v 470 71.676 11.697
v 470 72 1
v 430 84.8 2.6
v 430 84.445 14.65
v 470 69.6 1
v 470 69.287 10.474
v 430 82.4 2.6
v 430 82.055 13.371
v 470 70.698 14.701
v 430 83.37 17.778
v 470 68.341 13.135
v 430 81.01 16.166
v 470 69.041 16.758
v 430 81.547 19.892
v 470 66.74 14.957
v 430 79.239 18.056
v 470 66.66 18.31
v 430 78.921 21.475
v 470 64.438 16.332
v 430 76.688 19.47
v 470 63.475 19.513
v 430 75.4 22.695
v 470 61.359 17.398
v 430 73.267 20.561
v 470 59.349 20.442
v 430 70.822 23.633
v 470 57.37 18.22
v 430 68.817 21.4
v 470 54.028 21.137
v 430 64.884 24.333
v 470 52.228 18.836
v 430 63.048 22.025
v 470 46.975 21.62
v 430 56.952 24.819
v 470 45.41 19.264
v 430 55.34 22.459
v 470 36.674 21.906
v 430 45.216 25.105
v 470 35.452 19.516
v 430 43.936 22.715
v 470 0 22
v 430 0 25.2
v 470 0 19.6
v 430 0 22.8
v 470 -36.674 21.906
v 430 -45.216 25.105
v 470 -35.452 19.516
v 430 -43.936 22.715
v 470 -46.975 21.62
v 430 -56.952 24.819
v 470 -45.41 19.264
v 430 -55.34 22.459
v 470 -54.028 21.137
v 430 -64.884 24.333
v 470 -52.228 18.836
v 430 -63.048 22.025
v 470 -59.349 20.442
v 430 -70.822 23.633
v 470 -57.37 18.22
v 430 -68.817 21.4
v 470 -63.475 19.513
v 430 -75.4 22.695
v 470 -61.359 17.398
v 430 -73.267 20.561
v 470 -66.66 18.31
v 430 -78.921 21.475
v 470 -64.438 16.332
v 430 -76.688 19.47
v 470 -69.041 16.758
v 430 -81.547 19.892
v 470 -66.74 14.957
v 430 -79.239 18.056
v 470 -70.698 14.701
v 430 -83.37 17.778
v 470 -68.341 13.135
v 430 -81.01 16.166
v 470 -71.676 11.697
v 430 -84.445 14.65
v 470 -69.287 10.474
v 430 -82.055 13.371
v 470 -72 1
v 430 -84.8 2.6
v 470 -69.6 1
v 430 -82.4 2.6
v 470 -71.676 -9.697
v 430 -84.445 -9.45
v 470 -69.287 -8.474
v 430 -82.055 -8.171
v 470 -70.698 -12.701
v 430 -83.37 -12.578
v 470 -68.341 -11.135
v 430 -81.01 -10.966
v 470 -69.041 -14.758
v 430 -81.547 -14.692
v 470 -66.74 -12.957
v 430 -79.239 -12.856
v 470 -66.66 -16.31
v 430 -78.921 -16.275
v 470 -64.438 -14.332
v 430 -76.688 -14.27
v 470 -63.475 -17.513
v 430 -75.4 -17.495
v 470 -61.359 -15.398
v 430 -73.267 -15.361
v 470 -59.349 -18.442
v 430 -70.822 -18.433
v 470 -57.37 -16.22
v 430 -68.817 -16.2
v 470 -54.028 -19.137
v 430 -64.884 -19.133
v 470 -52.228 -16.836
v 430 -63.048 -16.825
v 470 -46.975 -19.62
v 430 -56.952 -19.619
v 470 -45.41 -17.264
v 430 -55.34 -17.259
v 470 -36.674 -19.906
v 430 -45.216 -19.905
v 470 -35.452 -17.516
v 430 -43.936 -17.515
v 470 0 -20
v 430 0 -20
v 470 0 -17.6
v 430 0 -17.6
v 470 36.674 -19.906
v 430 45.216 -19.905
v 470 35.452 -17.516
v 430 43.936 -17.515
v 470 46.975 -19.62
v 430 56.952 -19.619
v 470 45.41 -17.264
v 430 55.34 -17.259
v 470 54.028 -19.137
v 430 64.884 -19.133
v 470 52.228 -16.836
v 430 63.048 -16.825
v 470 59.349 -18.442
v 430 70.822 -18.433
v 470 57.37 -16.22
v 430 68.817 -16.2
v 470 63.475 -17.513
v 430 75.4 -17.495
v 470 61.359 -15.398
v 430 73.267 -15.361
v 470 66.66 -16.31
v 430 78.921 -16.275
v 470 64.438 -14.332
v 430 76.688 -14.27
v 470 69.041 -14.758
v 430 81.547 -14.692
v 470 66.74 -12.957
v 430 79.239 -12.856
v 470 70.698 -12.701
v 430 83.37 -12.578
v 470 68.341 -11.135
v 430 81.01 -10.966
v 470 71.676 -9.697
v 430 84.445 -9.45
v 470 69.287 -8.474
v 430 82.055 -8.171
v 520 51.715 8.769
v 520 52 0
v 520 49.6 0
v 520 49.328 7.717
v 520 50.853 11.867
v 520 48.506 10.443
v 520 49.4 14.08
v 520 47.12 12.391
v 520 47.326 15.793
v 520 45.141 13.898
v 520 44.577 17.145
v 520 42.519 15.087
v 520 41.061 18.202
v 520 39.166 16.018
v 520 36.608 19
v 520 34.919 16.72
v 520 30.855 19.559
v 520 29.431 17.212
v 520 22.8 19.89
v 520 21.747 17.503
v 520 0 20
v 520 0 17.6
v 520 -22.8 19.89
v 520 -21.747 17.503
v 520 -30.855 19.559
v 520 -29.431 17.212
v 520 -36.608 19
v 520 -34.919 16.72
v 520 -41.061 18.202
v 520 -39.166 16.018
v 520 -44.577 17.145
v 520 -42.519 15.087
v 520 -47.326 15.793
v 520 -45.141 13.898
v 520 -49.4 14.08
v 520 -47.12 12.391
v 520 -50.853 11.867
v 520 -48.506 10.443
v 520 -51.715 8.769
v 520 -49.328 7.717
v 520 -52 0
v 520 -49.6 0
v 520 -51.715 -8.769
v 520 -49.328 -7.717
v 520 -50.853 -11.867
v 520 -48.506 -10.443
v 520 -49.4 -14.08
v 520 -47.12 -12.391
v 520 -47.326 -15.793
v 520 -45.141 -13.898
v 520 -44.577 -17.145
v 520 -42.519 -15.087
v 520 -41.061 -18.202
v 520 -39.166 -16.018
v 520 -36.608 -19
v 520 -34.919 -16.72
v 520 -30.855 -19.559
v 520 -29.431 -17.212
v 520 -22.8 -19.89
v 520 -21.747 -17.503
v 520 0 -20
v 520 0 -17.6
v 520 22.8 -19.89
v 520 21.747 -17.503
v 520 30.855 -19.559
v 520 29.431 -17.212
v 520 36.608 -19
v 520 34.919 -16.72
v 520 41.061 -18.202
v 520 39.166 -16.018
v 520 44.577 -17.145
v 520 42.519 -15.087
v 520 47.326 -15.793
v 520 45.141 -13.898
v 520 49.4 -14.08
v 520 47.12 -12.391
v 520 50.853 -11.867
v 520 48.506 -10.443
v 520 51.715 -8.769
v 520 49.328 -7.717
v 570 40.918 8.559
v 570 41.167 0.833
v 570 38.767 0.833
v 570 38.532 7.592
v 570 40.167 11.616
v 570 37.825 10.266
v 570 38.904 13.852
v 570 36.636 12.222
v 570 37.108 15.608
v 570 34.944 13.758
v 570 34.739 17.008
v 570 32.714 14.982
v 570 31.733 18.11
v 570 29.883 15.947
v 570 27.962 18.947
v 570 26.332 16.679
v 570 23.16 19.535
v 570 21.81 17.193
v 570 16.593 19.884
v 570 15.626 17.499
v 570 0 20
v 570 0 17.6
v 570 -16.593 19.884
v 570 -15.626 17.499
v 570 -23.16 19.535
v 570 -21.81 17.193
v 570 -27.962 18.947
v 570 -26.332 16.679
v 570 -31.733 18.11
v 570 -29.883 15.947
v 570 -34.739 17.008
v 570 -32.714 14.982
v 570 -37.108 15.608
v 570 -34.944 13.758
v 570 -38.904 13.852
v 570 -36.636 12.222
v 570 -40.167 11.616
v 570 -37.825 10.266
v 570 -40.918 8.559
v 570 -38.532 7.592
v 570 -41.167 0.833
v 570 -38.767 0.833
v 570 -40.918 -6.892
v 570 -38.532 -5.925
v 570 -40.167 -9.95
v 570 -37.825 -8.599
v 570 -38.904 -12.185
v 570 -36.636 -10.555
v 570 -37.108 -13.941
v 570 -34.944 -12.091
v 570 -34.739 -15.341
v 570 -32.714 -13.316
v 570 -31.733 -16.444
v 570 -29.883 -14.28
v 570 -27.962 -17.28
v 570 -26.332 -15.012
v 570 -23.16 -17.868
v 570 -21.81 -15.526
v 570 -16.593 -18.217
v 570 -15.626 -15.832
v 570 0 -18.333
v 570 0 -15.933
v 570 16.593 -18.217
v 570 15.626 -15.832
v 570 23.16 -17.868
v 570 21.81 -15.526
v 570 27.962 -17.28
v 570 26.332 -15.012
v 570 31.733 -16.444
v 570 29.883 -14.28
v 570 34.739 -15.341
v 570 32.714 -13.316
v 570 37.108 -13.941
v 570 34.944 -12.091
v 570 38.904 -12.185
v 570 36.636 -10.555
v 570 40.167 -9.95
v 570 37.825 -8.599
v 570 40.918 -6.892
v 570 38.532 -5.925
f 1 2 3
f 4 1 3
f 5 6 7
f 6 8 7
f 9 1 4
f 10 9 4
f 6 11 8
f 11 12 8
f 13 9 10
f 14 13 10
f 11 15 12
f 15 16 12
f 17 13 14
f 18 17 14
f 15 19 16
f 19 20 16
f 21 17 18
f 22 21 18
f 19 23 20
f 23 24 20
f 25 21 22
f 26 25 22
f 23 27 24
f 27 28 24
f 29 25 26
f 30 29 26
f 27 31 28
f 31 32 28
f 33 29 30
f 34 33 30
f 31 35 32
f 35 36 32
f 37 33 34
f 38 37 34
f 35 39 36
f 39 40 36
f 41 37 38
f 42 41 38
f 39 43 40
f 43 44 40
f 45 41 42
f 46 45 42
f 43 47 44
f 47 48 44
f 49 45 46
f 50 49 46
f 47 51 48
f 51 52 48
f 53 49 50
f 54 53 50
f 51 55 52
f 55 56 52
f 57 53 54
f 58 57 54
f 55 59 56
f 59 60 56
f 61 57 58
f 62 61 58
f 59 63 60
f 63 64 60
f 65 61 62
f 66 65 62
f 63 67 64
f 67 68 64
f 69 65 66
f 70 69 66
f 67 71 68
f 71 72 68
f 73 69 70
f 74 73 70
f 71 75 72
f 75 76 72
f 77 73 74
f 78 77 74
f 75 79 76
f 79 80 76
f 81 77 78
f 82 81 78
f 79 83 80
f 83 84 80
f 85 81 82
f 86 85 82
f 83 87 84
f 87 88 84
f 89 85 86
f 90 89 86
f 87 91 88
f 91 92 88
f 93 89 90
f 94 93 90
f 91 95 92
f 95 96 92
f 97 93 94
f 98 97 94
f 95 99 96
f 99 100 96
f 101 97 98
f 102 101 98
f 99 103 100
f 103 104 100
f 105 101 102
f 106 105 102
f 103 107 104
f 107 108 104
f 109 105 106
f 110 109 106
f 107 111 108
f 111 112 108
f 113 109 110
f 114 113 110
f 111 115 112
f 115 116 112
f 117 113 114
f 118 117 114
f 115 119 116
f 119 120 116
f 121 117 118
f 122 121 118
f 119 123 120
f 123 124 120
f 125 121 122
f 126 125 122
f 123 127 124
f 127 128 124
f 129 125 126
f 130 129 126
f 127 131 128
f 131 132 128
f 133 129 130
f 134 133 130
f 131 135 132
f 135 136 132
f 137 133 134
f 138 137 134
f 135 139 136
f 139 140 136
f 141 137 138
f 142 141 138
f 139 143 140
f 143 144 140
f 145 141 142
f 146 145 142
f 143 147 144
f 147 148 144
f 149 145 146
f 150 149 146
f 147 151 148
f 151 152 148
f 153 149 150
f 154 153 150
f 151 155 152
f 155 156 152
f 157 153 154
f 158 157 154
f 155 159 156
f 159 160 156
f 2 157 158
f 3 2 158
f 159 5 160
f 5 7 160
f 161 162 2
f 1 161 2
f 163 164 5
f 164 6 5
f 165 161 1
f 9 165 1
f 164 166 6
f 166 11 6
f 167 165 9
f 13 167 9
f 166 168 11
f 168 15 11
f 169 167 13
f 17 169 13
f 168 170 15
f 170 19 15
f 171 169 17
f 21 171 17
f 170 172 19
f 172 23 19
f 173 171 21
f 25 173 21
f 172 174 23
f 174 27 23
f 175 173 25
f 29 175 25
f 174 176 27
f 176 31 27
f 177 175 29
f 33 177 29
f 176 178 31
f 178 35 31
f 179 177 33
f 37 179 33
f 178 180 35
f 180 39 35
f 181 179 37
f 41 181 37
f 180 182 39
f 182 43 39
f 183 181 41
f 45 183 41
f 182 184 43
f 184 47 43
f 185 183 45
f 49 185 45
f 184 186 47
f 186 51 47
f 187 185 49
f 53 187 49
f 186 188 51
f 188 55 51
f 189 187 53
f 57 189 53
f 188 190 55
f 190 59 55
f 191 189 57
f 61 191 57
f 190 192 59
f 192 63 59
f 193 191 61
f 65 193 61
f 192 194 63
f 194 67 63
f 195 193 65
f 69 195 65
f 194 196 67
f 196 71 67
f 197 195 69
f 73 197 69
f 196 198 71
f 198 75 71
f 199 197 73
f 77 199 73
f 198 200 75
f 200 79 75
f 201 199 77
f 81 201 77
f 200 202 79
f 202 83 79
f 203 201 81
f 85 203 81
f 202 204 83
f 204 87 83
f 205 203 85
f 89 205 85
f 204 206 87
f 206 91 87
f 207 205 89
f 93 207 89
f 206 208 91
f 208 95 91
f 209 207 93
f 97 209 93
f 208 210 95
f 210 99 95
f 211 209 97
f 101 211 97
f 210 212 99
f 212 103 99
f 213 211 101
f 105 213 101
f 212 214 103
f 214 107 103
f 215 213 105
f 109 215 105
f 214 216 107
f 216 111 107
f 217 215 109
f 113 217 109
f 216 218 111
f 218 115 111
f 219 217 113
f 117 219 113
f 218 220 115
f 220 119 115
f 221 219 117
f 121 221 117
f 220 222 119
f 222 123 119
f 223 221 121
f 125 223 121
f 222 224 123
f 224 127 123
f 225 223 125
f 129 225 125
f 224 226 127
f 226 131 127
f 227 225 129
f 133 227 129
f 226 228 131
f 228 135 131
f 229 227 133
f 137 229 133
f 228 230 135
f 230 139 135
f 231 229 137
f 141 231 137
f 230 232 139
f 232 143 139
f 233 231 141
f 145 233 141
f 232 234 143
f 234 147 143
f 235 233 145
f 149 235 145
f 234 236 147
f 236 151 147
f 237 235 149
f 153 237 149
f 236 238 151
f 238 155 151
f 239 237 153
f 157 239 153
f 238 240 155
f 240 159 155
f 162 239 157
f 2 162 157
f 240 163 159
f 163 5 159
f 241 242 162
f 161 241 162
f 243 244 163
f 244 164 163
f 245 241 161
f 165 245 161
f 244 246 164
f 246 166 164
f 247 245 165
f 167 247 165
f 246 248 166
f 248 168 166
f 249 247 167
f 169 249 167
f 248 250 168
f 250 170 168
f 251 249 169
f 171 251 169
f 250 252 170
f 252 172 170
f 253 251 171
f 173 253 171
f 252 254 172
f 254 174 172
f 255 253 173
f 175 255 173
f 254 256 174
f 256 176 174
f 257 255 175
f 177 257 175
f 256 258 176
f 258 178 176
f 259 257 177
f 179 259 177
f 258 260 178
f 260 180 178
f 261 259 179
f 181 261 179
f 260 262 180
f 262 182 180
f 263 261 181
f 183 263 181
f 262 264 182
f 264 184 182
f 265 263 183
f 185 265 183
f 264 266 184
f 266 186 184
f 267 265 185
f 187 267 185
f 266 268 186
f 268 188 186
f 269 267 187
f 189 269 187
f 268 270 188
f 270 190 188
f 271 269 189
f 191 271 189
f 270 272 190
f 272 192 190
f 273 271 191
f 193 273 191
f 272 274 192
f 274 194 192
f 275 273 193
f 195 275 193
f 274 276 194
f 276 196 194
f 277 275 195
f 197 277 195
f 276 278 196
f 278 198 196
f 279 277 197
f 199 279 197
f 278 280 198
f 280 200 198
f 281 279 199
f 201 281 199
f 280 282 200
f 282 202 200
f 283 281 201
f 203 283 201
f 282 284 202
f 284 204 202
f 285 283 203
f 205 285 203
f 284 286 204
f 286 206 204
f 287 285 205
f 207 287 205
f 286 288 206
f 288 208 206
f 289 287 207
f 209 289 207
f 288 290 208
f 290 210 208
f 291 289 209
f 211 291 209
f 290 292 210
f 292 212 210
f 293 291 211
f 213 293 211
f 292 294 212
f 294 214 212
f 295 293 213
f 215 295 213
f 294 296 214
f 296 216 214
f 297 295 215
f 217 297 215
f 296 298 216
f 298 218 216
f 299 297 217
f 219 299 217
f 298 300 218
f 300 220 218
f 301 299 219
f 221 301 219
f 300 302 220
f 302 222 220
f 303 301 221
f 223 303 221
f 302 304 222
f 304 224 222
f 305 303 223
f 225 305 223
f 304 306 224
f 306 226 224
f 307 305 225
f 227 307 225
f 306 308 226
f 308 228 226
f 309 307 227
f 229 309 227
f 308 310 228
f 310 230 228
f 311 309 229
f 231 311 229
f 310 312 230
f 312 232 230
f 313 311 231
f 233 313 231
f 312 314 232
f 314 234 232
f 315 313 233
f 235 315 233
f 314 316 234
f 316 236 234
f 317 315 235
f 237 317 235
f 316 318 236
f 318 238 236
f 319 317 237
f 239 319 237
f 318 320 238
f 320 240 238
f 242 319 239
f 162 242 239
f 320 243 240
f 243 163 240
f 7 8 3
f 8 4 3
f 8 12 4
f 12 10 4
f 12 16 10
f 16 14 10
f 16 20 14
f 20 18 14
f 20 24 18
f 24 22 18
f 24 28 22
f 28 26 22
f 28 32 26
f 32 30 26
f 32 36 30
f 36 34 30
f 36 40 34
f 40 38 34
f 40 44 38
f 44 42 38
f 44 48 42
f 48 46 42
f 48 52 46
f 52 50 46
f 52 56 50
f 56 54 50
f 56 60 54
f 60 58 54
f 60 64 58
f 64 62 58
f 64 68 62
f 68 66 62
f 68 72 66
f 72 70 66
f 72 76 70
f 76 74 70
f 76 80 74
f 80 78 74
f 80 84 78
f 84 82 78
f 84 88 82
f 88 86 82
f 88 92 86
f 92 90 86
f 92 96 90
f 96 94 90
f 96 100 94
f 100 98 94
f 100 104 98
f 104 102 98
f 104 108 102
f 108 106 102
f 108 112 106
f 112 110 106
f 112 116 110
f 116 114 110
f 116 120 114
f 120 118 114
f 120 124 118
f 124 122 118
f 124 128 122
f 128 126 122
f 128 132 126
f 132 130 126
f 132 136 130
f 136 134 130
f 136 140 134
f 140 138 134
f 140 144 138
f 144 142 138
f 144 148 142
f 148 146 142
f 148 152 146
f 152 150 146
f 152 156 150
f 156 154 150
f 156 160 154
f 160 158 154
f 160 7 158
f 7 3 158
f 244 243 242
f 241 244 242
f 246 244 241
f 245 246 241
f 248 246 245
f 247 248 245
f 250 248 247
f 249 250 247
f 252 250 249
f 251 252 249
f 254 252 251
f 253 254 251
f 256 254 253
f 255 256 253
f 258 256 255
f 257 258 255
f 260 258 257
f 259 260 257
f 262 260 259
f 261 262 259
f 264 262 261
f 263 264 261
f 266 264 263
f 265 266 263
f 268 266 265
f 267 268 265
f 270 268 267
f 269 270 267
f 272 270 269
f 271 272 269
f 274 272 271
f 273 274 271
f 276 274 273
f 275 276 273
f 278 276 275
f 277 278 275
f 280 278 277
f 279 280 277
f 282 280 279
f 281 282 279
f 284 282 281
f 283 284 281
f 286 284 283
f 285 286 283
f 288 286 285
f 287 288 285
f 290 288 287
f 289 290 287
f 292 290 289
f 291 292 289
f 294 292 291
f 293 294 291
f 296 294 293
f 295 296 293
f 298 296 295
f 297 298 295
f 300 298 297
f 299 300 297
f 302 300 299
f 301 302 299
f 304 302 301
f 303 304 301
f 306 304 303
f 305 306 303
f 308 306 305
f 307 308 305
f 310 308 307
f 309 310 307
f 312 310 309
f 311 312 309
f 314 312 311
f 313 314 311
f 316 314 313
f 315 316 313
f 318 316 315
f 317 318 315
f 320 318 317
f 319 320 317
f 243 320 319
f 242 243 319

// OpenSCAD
polyhedron(points=[[430.0, 84.8, 2.6], [430.0, 84.444642, 14.650381], [430.0, 83.369686, 17.778229], [430.0, 81.546687, 19.892314], [430.0, 78.92145, 21.474588], [430.0, 75.400429, 22.694926], [430.0, 70.821464, 23.633311], [430.0, 64.884434, 24.332961], [430.0, 56.951939, 24.818808], [430.0, 45.21559, 25.105294], [430.0, 0.000271, 25.2], [430.0, -45.21559, 25.105294], [430.0, -56.951939, 24.818808], [430.0, -64.884434, 24.332961], [430.0, -70.821464, 23.633311], [430.0, -75.400429, 22.694926], [430.0, -78.92145, 21.474588], [430.0, -81.546687, 19.892314], [430.0, -83.369686, 17.778229], [430.0, -84.444642, 14.650381], [430.0, -84.8, 2.600091], [430.0, -84.444642, -9.450381], [430.0, -83.369686, -12.578229], [430.0, -81.546687, -14.692314], [430.0, -78.92145, -16.274588], [430.0, -75.400429, -17.494926], [430.0, -70.821464, -18.433311], [430.0, -64.884434, -19.132961], [430.0, -56.951939, -19.618808], [430.0, -45.21559, -19.905294], [430.0, -0.000393, -20.0], [430.0, 45.21559, -19.905294], [430.0, 56.951939, -19.618808], [430.0, 64.884434, -19.132961], [430.0, 70.821464, -18.433311], [430.0, 75.400429, -17.494926], [430.0, 78.92145, -16.274588], [430.0, 81.546687, -14.692314], [430.0, 83.369686, -12.578229], [430.0, 84.444642, -9.450381], [430.0, 82.4, 2.6], [430.0, 82.054699, 13.370695], [430.0, 81.010167, 16.166382], [430.0, 79.238762, 18.055962], [430.0, 76.687824, 19.470207], [430.0, 73.266455, 20.560951], [430.0, 68.817083, 21.399685], [430.0, 63.048082, 22.025036], [430.0, 55.340092, 22.459288], [430.0, 43.935904, 22.715351], [430.0, 0.000263, 22.8], [430.0, -43.935904, 22.715351], [430.0, -55.340092, 22.459288], [430.0, -63.048082, 22.025036], [430.0, -68.817083, 21.399685], [430.0, -73.266455, 20.560951], [430.0, -76.687824, 19.470207], [430.0, -79.238762, 18.055962], [430.0, -81.010167, 16.166382], [430.0, -82.054699, 13.370695], [430.0, -82.4, 2.600082], [430.0, -82.054699, -8.170695], [430.0, -81.010167, -10.966382], [430.0, -79.238762, -12.855962], [430.0, -76.687824, -14.270207], [430.0, -73.266455, -15.360951], [430.0, -68.817083, -16.199685], [430.0, -63.048082, -16.825036], [430.0, -55.340092, -17.259288], [430.0, -43.935904, -17.515351], [430.0, -0.000382, -17.6], [430.0, 43.935904, -17.515351], [430.0, 55.340092, -17.259288], [430.0, 63.048082, -16.825036], [430.0, 68.817083, -16.199685], [430.0, 73.266455, -15.360951], [430.0, 76.687824, -14.270207], [430.0, 79.238762, -12.855962], [430.0, 81.010167, -10.966382], [430.0, 82.054699, -8.170695], [470.0, 72.0, 1.0], [470.0, 71.676387, 11.696687], [470.0, 70.698064, 14.701191], [470.0, 69.041046, 16.758288], [470.0, 66.659576, 18.31007], [470.0, 63.47457, 19.513416], [470.0, 59.34881, 20.442376], [470.0, 54.028415, 21.136972], [470.0, 46.975514, 21.620269], [470.0, 36.674354, 21.905613], [470.0, 9.2e-05, 22.0], [470.0, -36.674354, 21.905613], [470.0, -46.975514, 21.620269], [470.0, -54.028415, 21.136972], [470.0, -59.34881, 20.442376], [470.0, -63.47457, 19.513416], [470.0, -66.659576, 18.31007], [470.0, -69.041046, 16.758288], [470.0, -70.698064, 14.701191], [470.0, -71.676387, 11.696687], [470.0, -72.0, 1.000034], [470.0, -71.676387, -9.696687], [470.0, -70.698064, -12.701191], [470.0, -69.041046, -14.758288], [470.0, -66.659576, -16.31007], [470.0, -63.47457, -17.513416], [470.0, -59.34881, -18.442376], [470.0, -54.028415, -19.136972], [470.0, -46.975514, -19.620269], [470.0, -36.674354, -19.905613], [470.0, -0.000137, -20.0], [470.0, 36.674354, -19.905613], [470.0, 46.975514, -19.620269], [470.0, 54.028415, -19.136972], [470.0, 59.34881, -18.442376], [470.0, 63.47457, -17.513416], [470.0, 66.659576, -16.31007], [470.0, 69.041046, -14.758288], [470.0, 70.698064, -12.701191], [470.0, 71.676387, -9.696687], [470.0, 69.6, 1.0], [470.0, 69.287174, 10.474208], [470.0, 68.341462, 13.135341], [470.0, 66.739678, 14.957341], [470.0, 64.43759, 16.331776], [470.0, 61.358751, 17.397597], [470.0, 57.370517, 18.220391], [470.0, 52.227468, 18.835604], [470.0, 45.409663, 19.263667], [470.0, 35.451876, 19.5164], [470.0, 8.9e-05, 19.6], [470.0, -35.451876, 19.5164], [470.0, -45.409663, 19.263667], [470.0, -52.227468, 18.835604], [470.0, -57.370517, 18.220391], [470.0, -61.358751, 17.397597], [470.0, -64.43759, 16.331776], [470.0, -66.739678, 14.957341], [470.0, -68.341462, 13.135341], [470.0, -69.287174, 10.474208], [470.0, -69.6, 1.00003], [470.0, -69.287174, -8.474208], [470.0, -68.341462, -11.135341], [470.0, -66.739678, -12.957341], [470.0, -64.43759, -14.331776], [470.0, -61.358751, -15.397597], [470.0, -57.370517, -16.220391], [470.0, -52.227468, -16.835604], [470.0, -45.409663, -17.263667], [470.0, -35.451876, -17.5164], [470.0, -0.000132, -17.6], [470.0, 35.451876, -17.5164], [470.0, 45.409663, -17.263667], [470.0, 52.227468, -16.835604], [470.0, 57.370517, -16.220391], [470.0, 61.358751, -15.397597], [470.0, 64.43759, -14.331776], [470.0, 66.739678, -12.957341], [470.0, 68.341462, -11.135341], [470.0, 69.287174, -8.474208], [520.0, 52.0, 0.0], [520.0, 51.714485, 8.76911], [520.0, 50.853081, 11.867398], [520.0, 49.40014, 14.080119], [520.0, 47.325546, 15.79285], [520.0, 44.576687, 17.14488], [520.0, 41.061411, 18.202133], [520.0, 36.60831, 19.000054], [520.0, 30.855234, 19.558877], [520.0, 22.799686, 19.890186], [520.0, 3e-06, 20.0], [520.0, -22.799686, 19.890186], [520.0, -30.855234, 19.558877], [520.0, -36.60831, 19.000054], [520.0, -41.061411, 18.202133], [520.0, -44.576687, 17.14488], [520.0, -47.325546, 15.79285], [520.0, -49.40014, 14.080119], [520.0, -50.853081, 11.867398], [520.0, -51.714485, 8.76911], [520.0, -52.0, 2e-06], [520.0, -51.714485, -8.76911], [520.0, -50.853081, -11.867398], [520.0, -49.40014, -14.080119], [520.0, -47.325546, -15.79285], [520.0, -44.576687, -17.14488], [520.0, -41.061411, -18.202133], [520.0, -36.60831, -19.000054], [520.0, -30.855234, -19.558877], [520.0, -22.799686, -19.890186], [520.0, -5e-06, -20.0], [520.0, 22.799686, -19.890186], [520.0, 30.855234, -19.558877], [520.0, 36.60831, -19.000054], [520.0, 41.061411, -18.202133], [520.0, 44.576687, -17.14488], [520.0, 47.325546, -15.79285], [520.0, 49.40014, -14.080119], [520.0, 50.853081, -11.867398], [520.0, 51.714485, -8.76911], [520.0, 49.6, 0.0], [520.0, 49.327662, 7.716817], [520.0, 48.506015, 10.44331], [520.0, 47.120134, 12.390505], [520.0, 45.14129, 13.897708], [520.0, 42.519302, 15.087494], [520.0, 39.166269, 16.017877], [520.0, 34.918696, 16.720047], [520.0, 29.431146, 17.211812], [520.0, 21.747393, 17.503364], [520.0, 3e-06, 17.6], [520.0, -21.747393, 17.503364], [520.0, -29.431146, 17.211812], [520.0, -34.918696, 16.720047], [520.0, -39.166269, 16.017877], [520.0, -42.519302, 15.087494], [520.0, -45.14129, 13.897708], [520.0, -47.120134, 12.390505], [520.0, -48.506015, 10.44331], [520.0, -49.327662, 7.716817], [520.0, -49.6, 1e-06], [520.0, -49.327662, -7.716817], [520.0, -48.506015, -10.44331], [520.0, -47.120134, -12.390505], [520.0, -45.14129, -13.897708], [520.0, -42.519302, -15.087494], [520.0, -39.166269, -16.017877], [520.0, -34.918696, -16.720047], [520.0, -29.431146, -17.211812], [520.0, -21.747393, -17.503364], [520.0, -5e-06, -17.6], [520.0, 21.747393, -17.503364], [520.0, 29.431146, -17.211812], [520.0, 34.918696, -16.720047], [520.0, 39.166269, -16.017877], [520.0, 42.519302, -15.087494], [520.0, 45.14129, -13.897708], [520.0, 47.120134, -12.390505], [520.0, 48.506015, -10.44331], [520.0, 49.327662, -7.716817], [570.0, 41.166667, 0.833333], [570.0, 40.917639, 8.558963], [570.0, 40.167171, 11.616394], [570.0, 38.904296, 13.85209], [570.0, 37.107674, 15.607767], [570.0, 34.739541, 17.007613], [570.0, 31.732914, 18.110186], [570.0, 27.962024, 18.94667], [570.0, 23.160138, 19.534648], [570.0, 16.59331, 19.884056], [570.0, 0.0, 20.0], [570.0, -16.59331, 19.884056], [570.0, -23.160138, 19.534648], [570.0, -27.962024, 18.94667], [570.0, -31.732914, 18.110186], [570.0, -34.739541, 17.007613], [570.0, -37.107674, 15.607767], [570.0, -38.904296, 13.85209], [570.0, -40.167171, 11.616394], [570.0, -40.917639, 8.558963], [570.0, -41.166667, 0.833334], [570.0, -40.917639, -6.892297], [570.0, -40.167171, -9.949727], [570.0, -38.904296, -12.185423], [570.0, -37.107674, -13.9411], [570.0, -34.739541, -15.340947], [570.0, -31.732914, -16.443519], [570.0, -27.962024, -17.280003], [570.0, -23.160138, -17.867981], [570.0, -16.59331, -18.217389], [570.0, -1e-06, -18.333333], [570.0, 16.59331, -18.217389], [570.0, 23.160138, -17.867981], [570.0, 27.962024, -17.280003], [570.0, 31.732914, -16.443519], [570.0, 34.739541, -15.340947], [570.0, 37.107674, -13.9411], [570.0, 38.904296, -12.185423], [570.0, 40.167171, -9.949727], [570.0, 40.917639, -6.892297], [570.0, 38.766667, 0.833333], [570.0, 38.532157, 7.59158], [570.0, 37.825442, 10.266167], [570.0, 36.636192, 12.221915], [570.0, 34.944312, 13.757751], [570.0, 32.714239, 14.982312], [570.0, 29.882898, 15.946823], [570.0, 26.33185, 16.678565], [570.0, 21.809912, 17.192918], [570.0, 15.625927, 17.498574], [570.0, 0.0, 17.6], [570.0, -15.625927, 17.498574], [570.0, -21.809912, 17.192918], [570.0, -26.33185, 16.678565], [570.0, -29.882898, 15.946823], [570.0, -32.714239, 14.982312], [570.0, -34.944312, 13.757751], [570.0, -36.636192, 12.221915], [570.0, -37.825442, 10.266167], [570.0, -38.532157, 7.59158], [570.0, -38.766667, 0.833334], [570.0, -38.532157, -5.924913], [570.0, -37.825442, -8.5995], [570.0, -36.636192, -10.555248], [570.0, -34.944312, -12.091084], [570.0, -32.714239, -13.315646], [570.0, -29.882898, -14.280157], [570.0, -26.33185, -15.011898], [570.0, -21.809912, -15.526251], [570.0, -15.625927, -15.831907], [570.0, -1e-06, -15.933333], [570.0, 15.625927, -15.831907], [570.0, 21.809912, -15.526251], [570.0, 26.33185, -15.011898], [570.0, 29.882898, -14.280157], [570.0, 32.714239, -13.315646], [570.0, 34.944312, -12.091084], [570.0, 36.636192, -10.555248], [570.0, 37.825442, -8.5995], [570.0, 38.532157, -5.924913]], faces=[[0, 80, 81], [0, 81, 1], [40, 121, 120], [40, 41, 121], [1, 81, 82], [1, 82, 2], [41, 122, 121], [41, 42, 122], [2, 82, 83], [2, 83, 3], [42, 123, 122], [42, 43, 123], [3, 83, 84], [3, 84, 4], [43, 124, 123], [43, 44, 124], [4, 84, 85], [4, 85, 5], [44, 125, 124], [44, 45, 125], [5, 85, 86], [5, 86, 6], [45, 126, 125], [45, 46, 126], [6, 86, 87], [6, 87, 7], [46, 127, 126], [46, 47, 127], [7, 87, 88], [7, 88, 8], [47, 128, 127], [47, 48, 128], [8, 88, 89], [8, 89, 9], [48, 129, 128], [48, 49, 129], [9, 89, 90], [9, 90, 10], [49, 130, 129], [49, 50, 130], [10, 90, 91], [10, 91, 11], [50, 131, 130], [50, 51, 131], [11, 91, 92], [11, 92, 12], [51, 132, 131], [51, 52, 132], [12, 92, 93], [12, 93, 13], [52, 133, 132], [52, 53, 133], [13, 93, 94], [13, 94, 14], [53, 134, 133], [53, 54, 134], [14, 94, 95], [14, 95, 15], [54, 135, 134], [54, 55, 135], [15, 95, 96], [15, 96, 16], [55, 136, 135], [55, 56, 136], [16, 96, 97], [16, 97, 17], [56, 137, 136], [56, 57, 137], [17, 97, 98], [17, 98, 18], [57, 138, 137], [57, 58, 138], [18, 98, 99], [18, 99, 19], [58, 139, 138], [58, 59, 139], [19, 99, 100], [19, 100, 20], [59, 140, 139], [59, 60, 140], [20, 100, 101], [20, 101, 21], [60, 141, 140], [60, 61, 141], [21, 101, 102], [21, 102, 22], [61, 142, 141], [61, 62, 142], [22, 102, 103], [22, 103, 23], [62, 143, 142], [62, 63, 143], [23, 103, 104], [23, 104, 24], [63, 144, 143], [63, 64, 144], [24, 104, 105], [24, 105, 25], [64, 145, 144], [64, 65, 145], [25, 105, 106], [25, 106, 26], [65, 146, 145], [65, 66, 146], [26, 106, 107], [26, 107, 27], [66, 147, 146], [66, 67, 147], [27, 107, 108], [27, 108, 28], [67, 148, 147], [67, 68, 148], [28, 108, 109], [28, 109, 29], [68, 149, 148], [68, 69, 149], [29, 109, 110], [29, 110, 30], [69, 150, 149], [69, 70, 150], [30, 110, 111], [30, 111, 31], [70, 151, 150], [70, 71, 151], [31, 111, 112], [31, 112, 32], [71, 152, 151], [71, 72, 152], [32, 112, 113], [32, 113, 33], [72, 153, 152], [72, 73, 153], [33, 113, 114], [33, 114, 34], [73, 154, 153], [73, 74, 154], [34, 114, 115], [34, 115, 35], [74, 155, 154], [74, 75, 155], [35, 115, 116], [35, 116, 36], [75, 156, 155], [75, 76, 156], [36, 116, 117], [36, 117, 37], [76, 157, 156], [76, 77, 157], [37, 117, 118], [37, 118, 38], [77, 158, 157], [77, 78, 158], [38, 118, 119], [38, 119, 39], [78, 159, 158], [78, 79, 159], [39, 119, 80], [39, 80, 0], [79, 120, 159], [79, 40, 120], [80, 160, 161], [80, 161, 81], [120, 201, 200], [120, 121, 201], [81, 161, 162], [81, 162, 82], [121, 202, 201], [121, 122, 202], [82, 162, 163], [82, 163, 83], [122, 203, 202], [122, 123, 203], [83, 163, 164], [83, 164, 84], [123, 204, 203], [123, 124, 204], [84, 164, 165], [84, 165, 85], [124, 205, 204], [124, 125, 205], [85, 165, 166], [85, 166, 86], [125, 206, 205], [125, 126, 206], [86, 166, 167], [86, 167, 87], [126, 207, 206], [126, 127, 207], [87, 167, 168], [87, 168, 88], [127, 208, 207], [127, 128, 208], [88, 168, 169], [88, 169, 89], [128, 209, 208], [128, 129, 209], [89, 169, 170], [89, 170, 90], [129, 210, 209], [129, 130, 210], [90, 170, 171], [90, 171, 91], [130, 211, 210], [130, 131, 211], [91, 171, 172], [91, 172, 92], [131, 212, 211], [131, 132, 212], [92, 172, 173], [92, 173, 93], [132, 213, 212], [132, 133, 213], [93, 173, 174], [93, 174, 94], [133, 214, 213], [133, 134, 214], [94, 174, 175], [94, 175, 95], [134, 215, 214], [134, 135, 215], [95, 175, 176], [95, 176, 96], [135, 216, 215], [135, 136, 216], [96, 176, 177], [96, 177, 97], [136, 217, 216], [136, 137, 217], [97, 177, 178], [97, 178, 98], [137, 218, 217], [137, 138, 218], [98, 178, 179], [98, 179, 99], [138, 219, 218], [138, 139, 219], [99, 179, 180], [99, 180, 100], [139, 220, 219], [139, 140, 220], [100, 180, 181], [100, 181, 101], [140, 221, 220], [140, 141, 221], [101, 181, 182], [101, 182, 102], [141, 222, 221], [141, 142, 222], [102, 182, 183], [102, 183, 103], [142, 223, 222], [142, 143, 223], [103, 183, 184], [103, 184, 104], [143, 224, 223], [143, 144, 224], [104, 184, 185], [104, 185, 105], [144, 225, 224], [144, 145, 225], [105, 185, 186], [105, 186, 106], [145, 226, 225], [145, 146, 226], [106, 186, 187], [106, 187, 107], [146, 227, 226], [146, 147, 227], [107, 187, 188], [107, 188, 108], [147, 228, 227], [147, 148, 228], [108, 188, 189], [108, 189, 109], [148, 229, 228], [148, 149, 229], [109, 189, 190], [109, 190, 110], [149, 230, 229], [149, 150, 230], [110, 190, 191], [110, 191, 111], [150, 231, 230], [150, 151, 231], [111, 191, 192], [111, 192, 112], [151, 232, 231], [151, 152, 232], [112, 192, 193], [112, 193, 113], [152, 233, 232], [152, 153, 233], [113, 193, 194], [113, 194, 114], [153, 234, 233], [153, 154, 234], [114, 194, 195], [114, 195, 115], [154, 235, 234], [154, 155, 235], [115, 195, 196], [115, 196, 116], [155, 236, 235], [155, 156, 236], [116, 196, 197], [116, 197, 117], [156, 237, 236], [156, 157, 237], [117, 197, 198], [117, 198, 118], [157, 238, 237], [157, 158, 238], [118, 198, 199], [118, 199, 119], [158, 239, 238], [158, 159, 239], [119, 199, 160], [119, 160, 80], [159, 200, 239], [159, 120, 200], [160, 240, 241], [160, 241, 161], [200, 281, 280], [200, 201, 281], [161, 241, 242], [161, 242, 162], [201, 282, 281], [201, 202, 282], [162, 242, 243], [162, 243, 163], [202, 283, 282], [202, 203, 283], [163, 243, 244], [163, 244, 164], [203, 284, 283], [203, 204, 284], [164, 244, 245], [164, 245, 165], [204, 285, 284], [204, 205, 285], [165, 245, 246], [165, 246, 166], [205, 286, 285], [205, 206, 286], [166, 246, 247], [166, 247, 167], [206, 287, 286], [206, 207, 287], [167, 247, 248], [167, 248, 168], [207, 288, 287], [207, 208, 288], [168, 248, 249], [168, 249, 169], [208, 289, 288], [208, 209, 289], [169, 249, 250], [169, 250, 170], [209, 290, 289], [209, 210, 290], [170, 250, 251], [170, 251, 171], [210, 291, 290], [210, 211, 291], [171, 251, 252], [171, 252, 172], [211, 292, 291], [211, 212, 292], [172, 252, 253], [172, 253, 173], [212, 293, 292], [212, 213, 293], [173, 253, 254], [173, 254, 174], [213, 294, 293], [213, 214, 294], [174, 254, 255], [174, 255, 175], [214, 295, 294], [214, 215, 295], [175, 255, 256], [175, 256, 176], [215, 296, 295], [215, 216, 296], [176, 256, 257], [176, 257, 177], [216, 297, 296], [216, 217, 297], [177, 257, 258], [177, 258, 178], [217, 298, 297], [217, 218, 298], [178, 258, 259], [178, 259, 179], [218, 299, 298], [218, 219, 299], [179, 259, 260], [179, 260, 180], [219, 300, 299], [219, 220, 300], [180, 260, 261], [180, 261, 181], [220, 301, 300], [220, 221, 301], [181, 261, 262], [181, 262, 182], [221, 302, 301], [221, 222, 302], [182, 262, 263], [182, 263, 183], [222, 303, 302], [222, 223, 303], [183, 263, 264], [183, 264, 184], [223, 304, 303], [223, 224, 304], [184, 264, 265], [184, 265, 185], [224, 305, 304], [224, 225, 305], [185, 265, 266], [185, 266, 186], [225, 306, 305], [225, 226, 306], [186, 266, 267], [186, 267, 187], [226, 307, 306], [226, 227, 307], [187, 267, 268], [187, 268, 188], [227, 308, 307], [227, 228, 308], [188, 268, 269], [188, 269, 189], [228, 309, 308], [228, 229, 309], [189, 269, 270], [189, 270, 190], [229, 310, 309], [229, 230, 310], [190, 270, 271], [190, 271, 191], [230, 311, 310], [230, 231, 311], [191, 271, 272], [191, 272, 192], [231, 312, 311], [231, 232, 312], [192, 272, 273], [192, 273, 193], [232, 313, 312], [232, 233, 313], [193, 273, 274], [193, 274, 194], [233, 314, 313], [233, 234, 314], [194, 274, 275], [194, 275, 195], [234, 315, 314], [234, 235, 315], [195, 275, 276], [195, 276, 196], [235, 316, 315], [235, 236, 316], [196, 276, 277], [196, 277, 197], [236, 317, 316], [236, 237, 317], [197, 277, 278], [197, 278, 198], [237, 318, 317], [237, 238, 318], [198, 278, 279], [198, 279, 199], [238, 319, 318], [238, 239, 319], [199, 279, 240], [199, 240, 160], [239, 280, 319], [239, 200, 280], [0, 41, 40], [0, 1, 41], [1, 42, 41], [1, 2, 42], [2, 43, 42], [2, 3, 43], [3, 44, 43], [3, 4, 44], [4, 45, 44], [4, 5, 45], [5, 46, 45], [5, 6, 46], [6, 47, 46], [6, 7, 47], [7, 48, 47], [7, 8, 48], [8, 49, 48], [8, 9, 49], [9, 50, 49], [9, 10, 50], [10, 51, 50], [10, 11, 51], [11, 52, 51], [11, 12, 52], [12, 53, 52], [12, 13, 53], [13, 54, 53], [13, 14, 54], [14, 55, 54], [14, 15, 55], [15, 56, 55], [15, 16, 56], [16, 57, 56], [16, 17, 57], [17, 58, 57], [17, 18, 58], [18, 59, 58], [18, 19, 59], [19, 60, 59], [19, 20, 60], [20, 61, 60], [20, 21, 61], [21, 62, 61], [21, 22, 62], [22, 63, 62], [22, 23, 63], [23, 64, 63], [23, 24, 64], [24, 65, 64], [24, 25, 65], [25, 66, 65], [25, 26, 66], [26, 67, 66], [26, 27, 67], [27, 68, 67], [27, 28, 68], [28, 69, 68], [28, 29, 69], [29, 70, 69], [29, 30, 70], [30, 71, 70], [30, 31, 71], [31, 72, 71], [31, 32, 72], [32, 73, 72], [32, 33, 73], [33, 74, 73], [33, 34, 74], [34, 75, 74], [34, 35, 75], [35, 76, 75], [35, 36, 76], [36, 77, 76], [36, 37, 77], [37, 78, 77], [37, 38, 78], [38, 79, 78], [38, 39, 79], [39, 40, 79], [39, 0, 40], [240, 280, 281], [240, 281, 241], [241, 281, 282], [241, 282, 242], [242, 282, 283], [242, 283, 243], [243, 283, 284], [243, 284, 244], [244, 284, 285], [244, 285, 245], [245, 285, 286], [245, 286, 246], [246, 286, 287], [246, 287, 247], [247, 287, 288], [247, 288, 248], [248, 288, 289], [248, 289, 249], [249, 289, 290], [249, 290, 250], [250, 290, 291], [250, 291, 251], [251, 291, 292], [251, 292, 252], [252, 292, 293], [252, 293, 253], [253, 293, 294], [253, 294, 254], [254, 294, 295], [254, 295, 255], [255, 295, 296], [255, 296, 256], [256, 296, 297], [256, 297, 257], [257, 297, 298], [257, 298, 258], [258, 298, 299], [258, 299, 259], [259, 299, 300], [259, 300, 260], [260, 300, 301], [260, 301, 261], [261, 301, 302], [261, 302, 262], [262, 302, 303], [262, 303, 263], [263, 303, 304], [263, 304, 264], [264, 304, 305], [264, 305, 265], [265, 305, 306], [265, 306, 266], [266, 306, 307], [266, 307, 267], [267, 307, 308], [267, 308, 268], [268, 308, 309], [268, 309, 269], [269, 309, 310], [269, 310, 270], [270, 310, 311], [270, 311, 271], [271, 311, 312], [271, 312, 272], [272, 312, 313], [272, 313, 273], [273, 313, 314], [273, 314, 274], [274, 314, 315], [274, 315, 275], [275, 315, 316], [275, 316, 276], [276, 316, 317], [276, 317, 277], [277, 317, 318], [277, 318, 278], [278, 318, 319], [278, 319, 279], [279, 319, 280], [279, 280, 240]], convexity=30);
